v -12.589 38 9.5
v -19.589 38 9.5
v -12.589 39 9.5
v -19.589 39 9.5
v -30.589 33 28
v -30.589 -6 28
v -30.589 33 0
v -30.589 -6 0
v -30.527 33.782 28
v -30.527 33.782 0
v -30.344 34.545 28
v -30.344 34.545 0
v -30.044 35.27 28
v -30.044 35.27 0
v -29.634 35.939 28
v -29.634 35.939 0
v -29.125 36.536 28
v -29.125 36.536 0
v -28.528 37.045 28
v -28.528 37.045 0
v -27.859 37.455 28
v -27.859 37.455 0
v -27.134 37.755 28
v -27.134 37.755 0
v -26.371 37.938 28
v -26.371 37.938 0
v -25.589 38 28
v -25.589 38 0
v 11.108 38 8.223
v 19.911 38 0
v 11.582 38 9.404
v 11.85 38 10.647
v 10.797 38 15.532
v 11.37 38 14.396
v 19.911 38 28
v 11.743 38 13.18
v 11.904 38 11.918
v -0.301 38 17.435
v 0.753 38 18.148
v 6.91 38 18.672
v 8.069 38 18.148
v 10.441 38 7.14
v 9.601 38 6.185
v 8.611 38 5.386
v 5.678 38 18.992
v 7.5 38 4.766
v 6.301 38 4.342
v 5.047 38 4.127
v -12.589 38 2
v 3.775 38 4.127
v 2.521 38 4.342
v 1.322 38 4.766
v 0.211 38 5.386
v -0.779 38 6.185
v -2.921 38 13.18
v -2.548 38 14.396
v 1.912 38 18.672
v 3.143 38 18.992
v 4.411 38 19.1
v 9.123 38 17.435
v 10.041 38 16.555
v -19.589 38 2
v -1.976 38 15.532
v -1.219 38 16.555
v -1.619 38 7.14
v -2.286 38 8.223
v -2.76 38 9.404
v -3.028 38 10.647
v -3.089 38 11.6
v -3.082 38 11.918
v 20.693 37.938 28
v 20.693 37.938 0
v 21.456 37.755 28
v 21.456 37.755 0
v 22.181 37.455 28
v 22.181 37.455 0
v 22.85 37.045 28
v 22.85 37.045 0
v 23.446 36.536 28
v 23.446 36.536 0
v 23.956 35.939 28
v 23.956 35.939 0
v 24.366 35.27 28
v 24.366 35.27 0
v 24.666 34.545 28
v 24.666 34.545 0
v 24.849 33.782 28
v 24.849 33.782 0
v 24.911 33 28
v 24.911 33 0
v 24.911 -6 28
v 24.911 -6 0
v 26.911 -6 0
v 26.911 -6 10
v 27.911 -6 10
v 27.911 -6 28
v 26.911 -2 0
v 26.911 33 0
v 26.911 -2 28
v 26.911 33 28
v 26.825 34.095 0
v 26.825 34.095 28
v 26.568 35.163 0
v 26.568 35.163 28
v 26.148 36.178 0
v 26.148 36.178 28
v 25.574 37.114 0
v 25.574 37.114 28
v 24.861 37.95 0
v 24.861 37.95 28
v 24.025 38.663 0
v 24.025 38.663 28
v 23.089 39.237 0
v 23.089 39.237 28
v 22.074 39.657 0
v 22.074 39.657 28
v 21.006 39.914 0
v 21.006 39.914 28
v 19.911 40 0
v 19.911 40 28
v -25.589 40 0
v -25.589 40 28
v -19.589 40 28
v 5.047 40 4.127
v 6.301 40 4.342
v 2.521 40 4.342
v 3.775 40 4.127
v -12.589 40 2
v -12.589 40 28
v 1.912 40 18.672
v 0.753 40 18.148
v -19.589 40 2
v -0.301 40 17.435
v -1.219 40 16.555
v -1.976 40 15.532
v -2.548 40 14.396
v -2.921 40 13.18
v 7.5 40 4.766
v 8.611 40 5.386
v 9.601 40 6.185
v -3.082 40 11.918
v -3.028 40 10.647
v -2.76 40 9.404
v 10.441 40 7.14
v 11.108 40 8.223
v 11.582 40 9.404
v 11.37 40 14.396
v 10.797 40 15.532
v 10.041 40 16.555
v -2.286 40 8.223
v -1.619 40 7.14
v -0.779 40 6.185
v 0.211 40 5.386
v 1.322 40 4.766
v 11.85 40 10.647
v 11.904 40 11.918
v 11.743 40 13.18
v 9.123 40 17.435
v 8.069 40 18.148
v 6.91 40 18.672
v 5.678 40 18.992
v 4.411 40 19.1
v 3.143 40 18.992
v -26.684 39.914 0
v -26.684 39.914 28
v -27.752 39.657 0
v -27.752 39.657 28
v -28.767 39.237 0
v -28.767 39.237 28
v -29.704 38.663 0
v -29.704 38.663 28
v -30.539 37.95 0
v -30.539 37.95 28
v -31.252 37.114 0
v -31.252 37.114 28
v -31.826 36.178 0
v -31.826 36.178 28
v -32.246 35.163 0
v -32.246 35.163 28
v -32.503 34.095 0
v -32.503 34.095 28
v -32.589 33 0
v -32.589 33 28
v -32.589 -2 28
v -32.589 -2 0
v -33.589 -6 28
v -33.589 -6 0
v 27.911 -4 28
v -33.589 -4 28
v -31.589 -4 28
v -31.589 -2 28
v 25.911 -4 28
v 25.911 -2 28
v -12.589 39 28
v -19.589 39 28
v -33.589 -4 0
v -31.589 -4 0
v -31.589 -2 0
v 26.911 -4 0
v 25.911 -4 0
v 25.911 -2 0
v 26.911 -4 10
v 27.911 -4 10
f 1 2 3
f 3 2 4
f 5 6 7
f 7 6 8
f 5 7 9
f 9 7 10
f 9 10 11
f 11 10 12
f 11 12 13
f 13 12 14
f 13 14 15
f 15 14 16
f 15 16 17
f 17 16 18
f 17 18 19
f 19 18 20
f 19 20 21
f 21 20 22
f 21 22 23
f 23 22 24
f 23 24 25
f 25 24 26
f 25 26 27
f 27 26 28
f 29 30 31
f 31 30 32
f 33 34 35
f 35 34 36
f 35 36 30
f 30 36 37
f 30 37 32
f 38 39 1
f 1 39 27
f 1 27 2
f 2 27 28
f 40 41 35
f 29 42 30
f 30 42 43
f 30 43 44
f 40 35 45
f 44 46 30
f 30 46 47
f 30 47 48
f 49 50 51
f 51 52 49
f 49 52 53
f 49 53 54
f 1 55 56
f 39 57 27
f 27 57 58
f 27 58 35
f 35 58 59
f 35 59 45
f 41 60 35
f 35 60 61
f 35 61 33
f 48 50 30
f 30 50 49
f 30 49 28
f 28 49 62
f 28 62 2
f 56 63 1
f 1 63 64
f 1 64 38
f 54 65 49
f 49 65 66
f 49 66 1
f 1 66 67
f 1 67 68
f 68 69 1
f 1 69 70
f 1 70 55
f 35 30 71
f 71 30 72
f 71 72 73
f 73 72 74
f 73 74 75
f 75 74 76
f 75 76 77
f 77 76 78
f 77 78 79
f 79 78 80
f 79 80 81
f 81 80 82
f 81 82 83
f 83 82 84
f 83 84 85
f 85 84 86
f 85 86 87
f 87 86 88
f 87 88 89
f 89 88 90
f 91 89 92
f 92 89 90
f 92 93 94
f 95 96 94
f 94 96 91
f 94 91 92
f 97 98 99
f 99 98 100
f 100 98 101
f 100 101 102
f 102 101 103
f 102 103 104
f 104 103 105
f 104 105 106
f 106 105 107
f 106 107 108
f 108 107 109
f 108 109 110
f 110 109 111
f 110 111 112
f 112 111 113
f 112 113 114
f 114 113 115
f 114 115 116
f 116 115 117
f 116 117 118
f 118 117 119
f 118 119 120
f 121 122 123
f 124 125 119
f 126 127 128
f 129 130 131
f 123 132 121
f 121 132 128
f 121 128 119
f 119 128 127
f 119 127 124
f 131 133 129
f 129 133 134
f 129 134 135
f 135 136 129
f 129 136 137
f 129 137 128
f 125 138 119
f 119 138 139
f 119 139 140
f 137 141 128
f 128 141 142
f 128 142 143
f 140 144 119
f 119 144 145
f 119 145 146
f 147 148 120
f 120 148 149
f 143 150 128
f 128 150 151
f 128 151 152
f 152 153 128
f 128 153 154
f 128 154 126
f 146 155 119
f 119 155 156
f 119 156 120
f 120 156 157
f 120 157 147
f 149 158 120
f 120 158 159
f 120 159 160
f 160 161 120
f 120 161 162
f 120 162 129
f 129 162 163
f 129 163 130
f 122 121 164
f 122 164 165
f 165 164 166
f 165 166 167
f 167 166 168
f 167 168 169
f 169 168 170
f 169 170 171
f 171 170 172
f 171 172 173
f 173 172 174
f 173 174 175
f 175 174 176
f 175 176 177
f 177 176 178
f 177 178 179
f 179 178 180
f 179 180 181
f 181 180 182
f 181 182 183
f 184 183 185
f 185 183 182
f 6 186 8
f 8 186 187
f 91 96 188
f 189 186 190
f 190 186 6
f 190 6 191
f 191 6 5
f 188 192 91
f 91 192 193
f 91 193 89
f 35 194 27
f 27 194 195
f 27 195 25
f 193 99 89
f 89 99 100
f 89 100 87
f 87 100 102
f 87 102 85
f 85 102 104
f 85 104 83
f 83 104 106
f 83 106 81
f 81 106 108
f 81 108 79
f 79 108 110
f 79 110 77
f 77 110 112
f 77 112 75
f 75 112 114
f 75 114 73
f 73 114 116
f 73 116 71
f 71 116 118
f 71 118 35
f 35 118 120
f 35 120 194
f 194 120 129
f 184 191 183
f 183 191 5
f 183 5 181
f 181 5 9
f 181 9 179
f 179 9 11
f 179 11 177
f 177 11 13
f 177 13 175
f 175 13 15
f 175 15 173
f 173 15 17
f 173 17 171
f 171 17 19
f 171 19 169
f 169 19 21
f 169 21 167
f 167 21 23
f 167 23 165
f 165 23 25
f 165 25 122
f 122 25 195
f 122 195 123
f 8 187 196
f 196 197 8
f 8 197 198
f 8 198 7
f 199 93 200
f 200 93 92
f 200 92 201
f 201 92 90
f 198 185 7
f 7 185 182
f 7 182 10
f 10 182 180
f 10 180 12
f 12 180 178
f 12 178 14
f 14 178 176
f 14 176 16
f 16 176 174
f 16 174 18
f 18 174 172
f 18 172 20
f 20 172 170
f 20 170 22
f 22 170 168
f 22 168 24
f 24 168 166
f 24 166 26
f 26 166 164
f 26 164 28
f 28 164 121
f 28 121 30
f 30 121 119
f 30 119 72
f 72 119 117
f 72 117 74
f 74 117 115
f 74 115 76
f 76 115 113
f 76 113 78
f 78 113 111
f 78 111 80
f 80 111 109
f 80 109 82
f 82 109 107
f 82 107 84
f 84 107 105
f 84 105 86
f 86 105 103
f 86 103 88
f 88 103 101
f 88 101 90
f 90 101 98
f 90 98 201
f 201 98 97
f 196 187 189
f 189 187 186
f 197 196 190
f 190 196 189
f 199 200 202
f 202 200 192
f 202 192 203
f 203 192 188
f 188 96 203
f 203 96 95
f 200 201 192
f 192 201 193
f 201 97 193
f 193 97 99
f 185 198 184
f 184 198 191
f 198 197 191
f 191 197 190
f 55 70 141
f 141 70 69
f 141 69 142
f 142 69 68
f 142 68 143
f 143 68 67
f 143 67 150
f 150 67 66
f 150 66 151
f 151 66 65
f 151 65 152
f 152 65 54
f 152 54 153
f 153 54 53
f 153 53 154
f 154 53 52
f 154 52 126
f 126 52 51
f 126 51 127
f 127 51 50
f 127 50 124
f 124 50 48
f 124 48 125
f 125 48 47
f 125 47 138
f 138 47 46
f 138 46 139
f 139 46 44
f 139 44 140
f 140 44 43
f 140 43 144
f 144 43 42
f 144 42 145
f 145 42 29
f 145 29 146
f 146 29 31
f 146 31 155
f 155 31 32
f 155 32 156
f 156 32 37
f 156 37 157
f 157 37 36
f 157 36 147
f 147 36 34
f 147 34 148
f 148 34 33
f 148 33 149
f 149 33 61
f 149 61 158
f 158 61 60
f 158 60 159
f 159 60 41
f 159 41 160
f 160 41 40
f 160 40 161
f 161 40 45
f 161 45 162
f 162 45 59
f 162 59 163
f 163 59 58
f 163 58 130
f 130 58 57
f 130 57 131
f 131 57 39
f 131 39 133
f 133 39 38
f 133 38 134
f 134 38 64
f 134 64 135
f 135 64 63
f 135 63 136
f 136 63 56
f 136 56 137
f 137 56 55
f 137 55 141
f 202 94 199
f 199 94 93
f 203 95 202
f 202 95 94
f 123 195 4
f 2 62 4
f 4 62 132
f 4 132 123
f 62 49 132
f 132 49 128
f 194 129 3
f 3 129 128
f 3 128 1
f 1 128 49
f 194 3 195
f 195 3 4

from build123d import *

# Parameters (mm, degrees)
BOSS_EXTRUDE1_DEPTH = 28
SKETCH2_W           = 1
SKETCH2_H           = 2
BOSS_EXTRUDE2_DEPTH = 28
SKETCH3_W           = 1
SKETCH3_H           = 2
CUT_EXTRUDE1_DEPTH  = 60.264016753
SKETCH4_R           = 7.5
CUT_EXTRUDE2_DEPTH  = 10
SKETCH5_W           = 1
SKETCH5_H           = 2
CUT_EXTRUDE3_DEPTH  = 10
SKETCH6_W           = 7
SKETCH6_H           = 7.5
CUT_EXTRUDE4_DEPTH  = 2
SKETCH7_W           = 7
SKETCH7_H           = 18.5
CUT_EXTRUDE5_DEPTH  = 1


with BuildPart() as part:
    # Sketch1 → Boss-Extrude1 (new body)
    with BuildSketch(Plane.XY):
        with BuildLine():
            Line((-30.589041096, 0), (-30.589041096, 33))
            ThreePointArc((-30.589041096, 33), (-29.124575002, 36.535533906), (-25.589041096, 38))
            Line((-25.589041096, 38), (19.910958904, 38))
            ThreePointArc((19.910958904, 38), (23.44649281, 36.535533906), (24.910958904, 33))
            Line((24.910958904, 33), (24.910958904, 0))
            Line((24.910958904, 0), (24.910958904, -6))
            Line((24.910958904, -6), (26.910958904, -6))
            Line((26.910958904, -6), (26.910958904, 0))
            Line((26.910958904, 0), (26.910958904, 33))
            ThreePointArc((26.910958904, 33), (24.860706372, 37.949747468), (19.910958904, 40))
            Line((19.910958904, 40), (-25.589041096, 40))
            ThreePointArc((-25.589041096, 40), (-30.538788564, 37.949747468), (-32.589041096, 33))
            Line((-32.589041096, 33), (-32.589041096, 0))
            Line((-32.589041096, 0), (-32.589041096, -6))
            Line((-32.589041096, -6), (-30.589041096, -6))
            Line((-30.589041096, -6), (-30.589041096, 0))
        make_face()
    extrude(amount=BOSS_EXTRUDE1_DEPTH)

    # Sketch2 → Boss-Extrude2 (add, through all)
    with BuildSketch(Plane.XY.offset(28)):
        with Locations((-33.089041096, -5)):
            Rectangle(SKETCH2_W, SKETCH2_H)
        with Locations((27.410958904, -5)):
            Rectangle(SKETCH2_W, SKETCH2_H)
    extrude(amount=-BOSS_EXTRUDE2_DEPTH)

    # Sketch3 → Cut-Extrude1 (cut, through all)
    with BuildSketch(Plane.XY.offset(28)):
        with Locations((-32.089041096, -3)):
            Rectangle(SKETCH3_W, SKETCH3_H)
        with Locations((26.410958904, -3)):
            Rectangle(SKETCH3_W, SKETCH3_H)
    extrude(amount=-CUT_EXTRUDE1_DEPTH, mode=Mode.SUBTRACT)

    # Sketch4 → Cut-Extrude2 (cut)
    with BuildSketch(Plane(origin=(0, 40, 0), x_dir=(1, 0, 0), z_dir=(0, 1, 0))):
        with Locations(Location((4.410958904, -11.6, 0), (0, 0, 270))):
            Circle(SKETCH4_R)
    extrude(amount=-CUT_EXTRUDE2_DEPTH, mode=Mode.SUBTRACT)

    # Sketch5 → Cut-Extrude3 (cut)
    with BuildSketch(Plane(origin=(0, 0, 0), x_dir=(-1, 0, 0), z_dir=(0, 0, -1))):
        with Locations((-27.410958904, -5)):
            Rectangle(SKETCH5_W, SKETCH5_H)
    extrude(amount=-CUT_EXTRUDE3_DEPTH, mode=Mode.SUBTRACT)

    # Sketch6 → Cut-Extrude4 (cut)
    with BuildSketch(Plane(origin=(0, 40, 0), x_dir=(1, 0, 0), z_dir=(0, 1, 0))):
        with Locations((-16.089041096, -5.75)):
            Rectangle(SKETCH6_W, SKETCH6_H)
    extrude(amount=-CUT_EXTRUDE4_DEPTH, mode=Mode.SUBTRACT)

    # Sketch7 → Cut-Extrude5 (cut)
    with BuildSketch(Plane(origin=(0, 40, 0), x_dir=(1, 0, 0), z_dir=(0, 1, 0))):
        with Locations((-16.089041096, -18.75)):
            Rectangle(SKETCH7_W, SKETCH7_H)
    extrude(amount=-CUT_EXTRUDE5_DEPTH, mode=Mode.SUBTRACT)


solid = part.part
